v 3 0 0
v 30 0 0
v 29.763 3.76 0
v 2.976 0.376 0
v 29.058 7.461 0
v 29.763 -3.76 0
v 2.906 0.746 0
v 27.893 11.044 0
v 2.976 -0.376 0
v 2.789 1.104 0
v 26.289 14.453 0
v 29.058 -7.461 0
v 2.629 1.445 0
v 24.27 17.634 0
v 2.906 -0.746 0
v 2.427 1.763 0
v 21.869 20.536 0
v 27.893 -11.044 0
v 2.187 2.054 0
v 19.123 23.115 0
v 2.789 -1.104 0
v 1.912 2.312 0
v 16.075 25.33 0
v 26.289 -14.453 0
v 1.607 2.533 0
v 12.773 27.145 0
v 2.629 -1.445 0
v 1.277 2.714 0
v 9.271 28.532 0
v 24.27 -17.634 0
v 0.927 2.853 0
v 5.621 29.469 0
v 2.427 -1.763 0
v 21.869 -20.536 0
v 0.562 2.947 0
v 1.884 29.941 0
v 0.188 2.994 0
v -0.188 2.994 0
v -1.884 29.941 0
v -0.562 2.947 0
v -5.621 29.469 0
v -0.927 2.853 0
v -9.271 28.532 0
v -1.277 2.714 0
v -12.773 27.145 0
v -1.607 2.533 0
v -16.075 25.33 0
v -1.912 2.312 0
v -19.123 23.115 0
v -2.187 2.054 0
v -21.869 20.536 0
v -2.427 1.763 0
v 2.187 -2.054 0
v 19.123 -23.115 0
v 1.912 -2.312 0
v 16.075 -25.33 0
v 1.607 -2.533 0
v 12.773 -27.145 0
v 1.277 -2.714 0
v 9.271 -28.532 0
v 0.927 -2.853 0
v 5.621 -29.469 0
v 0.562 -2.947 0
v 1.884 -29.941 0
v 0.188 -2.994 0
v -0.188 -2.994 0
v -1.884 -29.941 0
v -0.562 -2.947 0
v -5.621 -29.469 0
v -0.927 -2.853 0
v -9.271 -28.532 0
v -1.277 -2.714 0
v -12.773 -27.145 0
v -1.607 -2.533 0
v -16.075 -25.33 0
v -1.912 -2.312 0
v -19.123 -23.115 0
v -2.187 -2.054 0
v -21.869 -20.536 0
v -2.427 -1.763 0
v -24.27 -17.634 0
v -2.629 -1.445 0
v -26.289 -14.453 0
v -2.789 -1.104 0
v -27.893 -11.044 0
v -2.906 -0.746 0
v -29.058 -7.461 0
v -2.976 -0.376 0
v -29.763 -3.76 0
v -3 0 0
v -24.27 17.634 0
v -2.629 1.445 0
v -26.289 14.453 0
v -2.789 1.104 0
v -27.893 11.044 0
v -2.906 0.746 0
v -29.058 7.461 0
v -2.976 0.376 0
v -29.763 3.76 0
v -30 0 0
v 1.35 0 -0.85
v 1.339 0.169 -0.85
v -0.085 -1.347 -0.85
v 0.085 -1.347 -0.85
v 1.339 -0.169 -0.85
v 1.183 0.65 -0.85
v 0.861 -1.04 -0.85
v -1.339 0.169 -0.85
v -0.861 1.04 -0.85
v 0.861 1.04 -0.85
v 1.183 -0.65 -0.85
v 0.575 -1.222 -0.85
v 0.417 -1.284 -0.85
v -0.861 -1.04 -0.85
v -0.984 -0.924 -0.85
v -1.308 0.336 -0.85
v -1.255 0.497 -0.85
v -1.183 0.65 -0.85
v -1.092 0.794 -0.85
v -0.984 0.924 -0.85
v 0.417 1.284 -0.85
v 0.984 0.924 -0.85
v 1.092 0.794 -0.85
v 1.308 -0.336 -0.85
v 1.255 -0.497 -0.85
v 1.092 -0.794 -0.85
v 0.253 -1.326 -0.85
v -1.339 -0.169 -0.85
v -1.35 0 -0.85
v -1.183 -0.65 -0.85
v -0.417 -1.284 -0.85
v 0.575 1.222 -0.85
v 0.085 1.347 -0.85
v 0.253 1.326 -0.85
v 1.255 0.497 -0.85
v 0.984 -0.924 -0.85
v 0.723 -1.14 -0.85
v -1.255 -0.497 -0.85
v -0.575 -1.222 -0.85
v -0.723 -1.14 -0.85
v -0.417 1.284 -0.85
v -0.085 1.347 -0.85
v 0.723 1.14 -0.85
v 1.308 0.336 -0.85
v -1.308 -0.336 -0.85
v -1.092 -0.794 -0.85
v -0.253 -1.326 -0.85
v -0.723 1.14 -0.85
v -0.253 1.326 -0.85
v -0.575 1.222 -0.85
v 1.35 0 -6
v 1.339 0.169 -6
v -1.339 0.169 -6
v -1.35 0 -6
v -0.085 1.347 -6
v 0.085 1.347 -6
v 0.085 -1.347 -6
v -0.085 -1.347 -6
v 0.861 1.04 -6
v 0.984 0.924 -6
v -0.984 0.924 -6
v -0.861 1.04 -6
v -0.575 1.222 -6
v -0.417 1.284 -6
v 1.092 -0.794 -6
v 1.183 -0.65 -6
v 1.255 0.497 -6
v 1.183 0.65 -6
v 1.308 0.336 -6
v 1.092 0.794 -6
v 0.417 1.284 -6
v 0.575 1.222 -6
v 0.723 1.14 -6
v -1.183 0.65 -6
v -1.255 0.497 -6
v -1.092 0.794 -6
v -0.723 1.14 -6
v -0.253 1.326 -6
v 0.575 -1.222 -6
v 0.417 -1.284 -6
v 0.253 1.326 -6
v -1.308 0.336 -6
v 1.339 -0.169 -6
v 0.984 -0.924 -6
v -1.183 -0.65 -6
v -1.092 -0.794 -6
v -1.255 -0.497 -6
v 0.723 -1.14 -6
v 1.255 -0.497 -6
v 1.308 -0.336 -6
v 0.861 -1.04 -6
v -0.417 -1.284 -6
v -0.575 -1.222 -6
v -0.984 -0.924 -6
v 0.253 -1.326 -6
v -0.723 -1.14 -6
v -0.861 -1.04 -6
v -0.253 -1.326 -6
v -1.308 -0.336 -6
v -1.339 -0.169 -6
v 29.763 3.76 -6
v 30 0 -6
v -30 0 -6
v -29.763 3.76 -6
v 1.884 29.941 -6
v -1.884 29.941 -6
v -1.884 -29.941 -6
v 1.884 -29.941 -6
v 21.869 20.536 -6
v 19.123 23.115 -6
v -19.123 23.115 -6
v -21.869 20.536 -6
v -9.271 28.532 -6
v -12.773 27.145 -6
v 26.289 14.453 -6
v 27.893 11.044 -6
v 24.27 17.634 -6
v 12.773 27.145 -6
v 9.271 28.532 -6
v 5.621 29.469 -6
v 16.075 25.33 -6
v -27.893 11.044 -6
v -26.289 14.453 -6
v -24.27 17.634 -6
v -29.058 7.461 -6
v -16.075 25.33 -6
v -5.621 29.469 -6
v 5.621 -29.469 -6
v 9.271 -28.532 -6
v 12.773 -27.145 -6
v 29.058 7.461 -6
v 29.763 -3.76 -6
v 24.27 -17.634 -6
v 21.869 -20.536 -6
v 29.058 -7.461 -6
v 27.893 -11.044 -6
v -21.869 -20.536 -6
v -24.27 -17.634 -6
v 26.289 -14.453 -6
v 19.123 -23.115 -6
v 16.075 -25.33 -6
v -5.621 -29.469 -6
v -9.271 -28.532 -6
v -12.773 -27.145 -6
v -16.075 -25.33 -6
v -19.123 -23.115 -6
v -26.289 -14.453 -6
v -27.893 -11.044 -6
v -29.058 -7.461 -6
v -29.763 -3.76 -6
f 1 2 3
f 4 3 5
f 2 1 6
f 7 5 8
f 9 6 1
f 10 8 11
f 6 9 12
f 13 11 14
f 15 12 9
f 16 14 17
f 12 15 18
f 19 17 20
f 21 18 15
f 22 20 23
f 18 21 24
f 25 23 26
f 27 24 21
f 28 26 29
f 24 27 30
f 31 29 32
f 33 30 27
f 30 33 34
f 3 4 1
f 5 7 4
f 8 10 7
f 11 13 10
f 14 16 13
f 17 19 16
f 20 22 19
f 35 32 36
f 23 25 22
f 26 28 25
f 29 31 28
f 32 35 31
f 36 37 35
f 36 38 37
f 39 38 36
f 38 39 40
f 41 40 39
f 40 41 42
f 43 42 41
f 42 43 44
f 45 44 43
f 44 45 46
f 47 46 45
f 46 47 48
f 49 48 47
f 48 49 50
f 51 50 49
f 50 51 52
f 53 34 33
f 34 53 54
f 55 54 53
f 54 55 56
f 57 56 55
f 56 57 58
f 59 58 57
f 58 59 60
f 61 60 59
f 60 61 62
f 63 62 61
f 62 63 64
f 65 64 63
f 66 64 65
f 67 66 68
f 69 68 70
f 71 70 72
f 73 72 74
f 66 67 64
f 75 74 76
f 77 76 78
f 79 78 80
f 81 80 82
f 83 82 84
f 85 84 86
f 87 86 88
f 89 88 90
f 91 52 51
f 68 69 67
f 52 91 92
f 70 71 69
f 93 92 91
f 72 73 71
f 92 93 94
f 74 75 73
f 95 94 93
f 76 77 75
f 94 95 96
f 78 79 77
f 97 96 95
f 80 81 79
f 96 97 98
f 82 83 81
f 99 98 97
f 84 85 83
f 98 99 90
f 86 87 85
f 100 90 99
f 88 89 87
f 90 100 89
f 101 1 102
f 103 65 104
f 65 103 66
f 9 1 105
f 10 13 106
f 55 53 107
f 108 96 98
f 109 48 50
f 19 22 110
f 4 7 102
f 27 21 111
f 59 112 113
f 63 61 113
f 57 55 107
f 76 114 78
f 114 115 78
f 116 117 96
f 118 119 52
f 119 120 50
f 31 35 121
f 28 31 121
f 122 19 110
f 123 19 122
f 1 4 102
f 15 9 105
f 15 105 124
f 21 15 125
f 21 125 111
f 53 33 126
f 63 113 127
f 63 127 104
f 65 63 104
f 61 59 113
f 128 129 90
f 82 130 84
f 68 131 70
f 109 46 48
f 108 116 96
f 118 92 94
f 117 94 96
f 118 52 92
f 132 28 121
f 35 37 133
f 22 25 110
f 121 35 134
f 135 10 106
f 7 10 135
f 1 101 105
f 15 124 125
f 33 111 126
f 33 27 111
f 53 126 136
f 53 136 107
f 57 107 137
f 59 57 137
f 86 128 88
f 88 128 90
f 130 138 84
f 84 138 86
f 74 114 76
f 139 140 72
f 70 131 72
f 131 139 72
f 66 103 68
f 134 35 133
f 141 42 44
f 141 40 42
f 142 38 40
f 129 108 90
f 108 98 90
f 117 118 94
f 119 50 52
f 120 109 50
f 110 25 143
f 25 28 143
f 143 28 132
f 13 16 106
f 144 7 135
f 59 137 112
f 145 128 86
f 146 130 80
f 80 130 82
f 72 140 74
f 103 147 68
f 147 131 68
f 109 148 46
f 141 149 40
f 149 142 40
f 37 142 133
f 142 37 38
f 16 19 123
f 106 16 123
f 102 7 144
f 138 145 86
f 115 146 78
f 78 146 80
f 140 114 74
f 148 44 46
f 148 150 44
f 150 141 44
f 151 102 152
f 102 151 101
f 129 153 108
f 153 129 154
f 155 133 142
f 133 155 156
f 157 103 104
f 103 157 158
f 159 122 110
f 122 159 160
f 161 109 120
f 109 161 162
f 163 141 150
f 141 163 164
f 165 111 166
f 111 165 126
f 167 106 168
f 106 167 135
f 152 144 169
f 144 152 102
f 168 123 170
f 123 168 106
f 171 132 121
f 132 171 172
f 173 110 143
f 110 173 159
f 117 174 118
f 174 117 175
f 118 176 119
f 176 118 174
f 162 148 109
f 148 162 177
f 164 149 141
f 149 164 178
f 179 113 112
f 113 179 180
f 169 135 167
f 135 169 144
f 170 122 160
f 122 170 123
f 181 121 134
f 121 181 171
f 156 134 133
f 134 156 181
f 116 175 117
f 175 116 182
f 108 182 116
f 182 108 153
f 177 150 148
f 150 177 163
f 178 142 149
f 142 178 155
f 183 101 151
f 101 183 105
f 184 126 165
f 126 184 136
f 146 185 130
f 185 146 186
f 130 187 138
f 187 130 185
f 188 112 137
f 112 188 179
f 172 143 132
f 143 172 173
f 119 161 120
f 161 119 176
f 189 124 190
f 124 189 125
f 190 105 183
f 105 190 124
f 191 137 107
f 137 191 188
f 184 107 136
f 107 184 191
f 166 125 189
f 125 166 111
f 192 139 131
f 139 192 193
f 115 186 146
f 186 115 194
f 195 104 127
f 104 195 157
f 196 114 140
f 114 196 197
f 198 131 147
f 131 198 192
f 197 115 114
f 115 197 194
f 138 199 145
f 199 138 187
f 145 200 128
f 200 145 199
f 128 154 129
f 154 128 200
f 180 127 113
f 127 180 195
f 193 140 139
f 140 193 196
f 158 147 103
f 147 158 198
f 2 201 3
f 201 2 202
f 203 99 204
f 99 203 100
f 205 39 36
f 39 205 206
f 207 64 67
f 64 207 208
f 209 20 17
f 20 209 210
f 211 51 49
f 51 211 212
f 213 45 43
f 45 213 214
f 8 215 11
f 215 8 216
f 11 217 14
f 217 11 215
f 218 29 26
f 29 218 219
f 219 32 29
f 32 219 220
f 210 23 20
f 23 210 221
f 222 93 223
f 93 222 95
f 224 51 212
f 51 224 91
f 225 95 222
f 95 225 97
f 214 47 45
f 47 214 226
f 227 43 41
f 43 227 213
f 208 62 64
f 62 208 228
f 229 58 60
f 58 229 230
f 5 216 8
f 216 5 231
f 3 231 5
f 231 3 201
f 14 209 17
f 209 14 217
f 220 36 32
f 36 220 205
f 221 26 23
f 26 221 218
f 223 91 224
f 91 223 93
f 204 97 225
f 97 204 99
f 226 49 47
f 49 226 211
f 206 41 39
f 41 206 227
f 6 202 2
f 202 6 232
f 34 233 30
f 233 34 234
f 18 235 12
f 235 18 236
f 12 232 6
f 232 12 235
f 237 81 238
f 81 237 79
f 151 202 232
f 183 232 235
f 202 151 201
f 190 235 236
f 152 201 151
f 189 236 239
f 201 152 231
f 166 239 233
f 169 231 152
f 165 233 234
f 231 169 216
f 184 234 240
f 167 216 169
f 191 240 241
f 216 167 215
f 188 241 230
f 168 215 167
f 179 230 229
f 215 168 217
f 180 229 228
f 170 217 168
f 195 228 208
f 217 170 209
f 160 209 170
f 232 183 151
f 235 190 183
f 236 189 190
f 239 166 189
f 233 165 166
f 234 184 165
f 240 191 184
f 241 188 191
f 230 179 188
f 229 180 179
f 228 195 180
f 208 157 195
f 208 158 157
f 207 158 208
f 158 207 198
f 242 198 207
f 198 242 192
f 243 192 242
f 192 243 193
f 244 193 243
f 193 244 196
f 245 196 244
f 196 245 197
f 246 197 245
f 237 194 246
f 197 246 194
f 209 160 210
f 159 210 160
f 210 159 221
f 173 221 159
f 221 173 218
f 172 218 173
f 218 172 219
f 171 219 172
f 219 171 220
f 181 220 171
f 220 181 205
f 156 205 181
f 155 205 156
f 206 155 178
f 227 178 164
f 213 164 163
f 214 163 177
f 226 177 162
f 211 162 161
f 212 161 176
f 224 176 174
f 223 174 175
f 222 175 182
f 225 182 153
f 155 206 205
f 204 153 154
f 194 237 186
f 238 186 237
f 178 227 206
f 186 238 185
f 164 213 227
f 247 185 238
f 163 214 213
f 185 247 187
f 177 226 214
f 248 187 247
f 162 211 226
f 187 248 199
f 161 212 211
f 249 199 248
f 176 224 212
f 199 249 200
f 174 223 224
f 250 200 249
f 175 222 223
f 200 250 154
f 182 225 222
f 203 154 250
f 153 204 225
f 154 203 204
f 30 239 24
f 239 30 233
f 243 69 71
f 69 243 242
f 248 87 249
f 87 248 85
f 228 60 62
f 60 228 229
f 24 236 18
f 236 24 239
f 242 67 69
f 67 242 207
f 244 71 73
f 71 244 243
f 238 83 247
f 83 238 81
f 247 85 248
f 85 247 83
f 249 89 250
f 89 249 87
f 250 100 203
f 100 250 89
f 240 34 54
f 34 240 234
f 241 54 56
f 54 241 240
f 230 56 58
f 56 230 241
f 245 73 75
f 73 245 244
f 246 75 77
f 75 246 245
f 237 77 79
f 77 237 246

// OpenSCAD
$fn = 50;


difference() {
	union() {
		translate(v = [0, 0, -6.0000000000]) {
			cylinder(h = 6, r = 30.0000000000);
		}
	}
	union() {
		translate(v = [0, 0, 0]) {
			rotate(a = [0, 0, 0]) {
				difference() {
					union() {
						translate(v = [0, 0, -9.0000000000]) {
							cylinder(h = 9, r = 1.0000000000);
						}
						translate(v = [0, 0, -0.8500000000]) {
							cylinder(h = 0.8500000000, r1 = 1.3500000000, r2 = 3.0000000000);
						}
						translate(v = [0, 0, -9.0000000000]) {
							cylinder(h = 9, r = 1.3500000000);
						}
						translate(v = [0, 0, -9.0000000000]) {
							cylinder(h = 9, r = 1.0000000000);
						}
					}
					union();
				}
			}
		}
	}
}
